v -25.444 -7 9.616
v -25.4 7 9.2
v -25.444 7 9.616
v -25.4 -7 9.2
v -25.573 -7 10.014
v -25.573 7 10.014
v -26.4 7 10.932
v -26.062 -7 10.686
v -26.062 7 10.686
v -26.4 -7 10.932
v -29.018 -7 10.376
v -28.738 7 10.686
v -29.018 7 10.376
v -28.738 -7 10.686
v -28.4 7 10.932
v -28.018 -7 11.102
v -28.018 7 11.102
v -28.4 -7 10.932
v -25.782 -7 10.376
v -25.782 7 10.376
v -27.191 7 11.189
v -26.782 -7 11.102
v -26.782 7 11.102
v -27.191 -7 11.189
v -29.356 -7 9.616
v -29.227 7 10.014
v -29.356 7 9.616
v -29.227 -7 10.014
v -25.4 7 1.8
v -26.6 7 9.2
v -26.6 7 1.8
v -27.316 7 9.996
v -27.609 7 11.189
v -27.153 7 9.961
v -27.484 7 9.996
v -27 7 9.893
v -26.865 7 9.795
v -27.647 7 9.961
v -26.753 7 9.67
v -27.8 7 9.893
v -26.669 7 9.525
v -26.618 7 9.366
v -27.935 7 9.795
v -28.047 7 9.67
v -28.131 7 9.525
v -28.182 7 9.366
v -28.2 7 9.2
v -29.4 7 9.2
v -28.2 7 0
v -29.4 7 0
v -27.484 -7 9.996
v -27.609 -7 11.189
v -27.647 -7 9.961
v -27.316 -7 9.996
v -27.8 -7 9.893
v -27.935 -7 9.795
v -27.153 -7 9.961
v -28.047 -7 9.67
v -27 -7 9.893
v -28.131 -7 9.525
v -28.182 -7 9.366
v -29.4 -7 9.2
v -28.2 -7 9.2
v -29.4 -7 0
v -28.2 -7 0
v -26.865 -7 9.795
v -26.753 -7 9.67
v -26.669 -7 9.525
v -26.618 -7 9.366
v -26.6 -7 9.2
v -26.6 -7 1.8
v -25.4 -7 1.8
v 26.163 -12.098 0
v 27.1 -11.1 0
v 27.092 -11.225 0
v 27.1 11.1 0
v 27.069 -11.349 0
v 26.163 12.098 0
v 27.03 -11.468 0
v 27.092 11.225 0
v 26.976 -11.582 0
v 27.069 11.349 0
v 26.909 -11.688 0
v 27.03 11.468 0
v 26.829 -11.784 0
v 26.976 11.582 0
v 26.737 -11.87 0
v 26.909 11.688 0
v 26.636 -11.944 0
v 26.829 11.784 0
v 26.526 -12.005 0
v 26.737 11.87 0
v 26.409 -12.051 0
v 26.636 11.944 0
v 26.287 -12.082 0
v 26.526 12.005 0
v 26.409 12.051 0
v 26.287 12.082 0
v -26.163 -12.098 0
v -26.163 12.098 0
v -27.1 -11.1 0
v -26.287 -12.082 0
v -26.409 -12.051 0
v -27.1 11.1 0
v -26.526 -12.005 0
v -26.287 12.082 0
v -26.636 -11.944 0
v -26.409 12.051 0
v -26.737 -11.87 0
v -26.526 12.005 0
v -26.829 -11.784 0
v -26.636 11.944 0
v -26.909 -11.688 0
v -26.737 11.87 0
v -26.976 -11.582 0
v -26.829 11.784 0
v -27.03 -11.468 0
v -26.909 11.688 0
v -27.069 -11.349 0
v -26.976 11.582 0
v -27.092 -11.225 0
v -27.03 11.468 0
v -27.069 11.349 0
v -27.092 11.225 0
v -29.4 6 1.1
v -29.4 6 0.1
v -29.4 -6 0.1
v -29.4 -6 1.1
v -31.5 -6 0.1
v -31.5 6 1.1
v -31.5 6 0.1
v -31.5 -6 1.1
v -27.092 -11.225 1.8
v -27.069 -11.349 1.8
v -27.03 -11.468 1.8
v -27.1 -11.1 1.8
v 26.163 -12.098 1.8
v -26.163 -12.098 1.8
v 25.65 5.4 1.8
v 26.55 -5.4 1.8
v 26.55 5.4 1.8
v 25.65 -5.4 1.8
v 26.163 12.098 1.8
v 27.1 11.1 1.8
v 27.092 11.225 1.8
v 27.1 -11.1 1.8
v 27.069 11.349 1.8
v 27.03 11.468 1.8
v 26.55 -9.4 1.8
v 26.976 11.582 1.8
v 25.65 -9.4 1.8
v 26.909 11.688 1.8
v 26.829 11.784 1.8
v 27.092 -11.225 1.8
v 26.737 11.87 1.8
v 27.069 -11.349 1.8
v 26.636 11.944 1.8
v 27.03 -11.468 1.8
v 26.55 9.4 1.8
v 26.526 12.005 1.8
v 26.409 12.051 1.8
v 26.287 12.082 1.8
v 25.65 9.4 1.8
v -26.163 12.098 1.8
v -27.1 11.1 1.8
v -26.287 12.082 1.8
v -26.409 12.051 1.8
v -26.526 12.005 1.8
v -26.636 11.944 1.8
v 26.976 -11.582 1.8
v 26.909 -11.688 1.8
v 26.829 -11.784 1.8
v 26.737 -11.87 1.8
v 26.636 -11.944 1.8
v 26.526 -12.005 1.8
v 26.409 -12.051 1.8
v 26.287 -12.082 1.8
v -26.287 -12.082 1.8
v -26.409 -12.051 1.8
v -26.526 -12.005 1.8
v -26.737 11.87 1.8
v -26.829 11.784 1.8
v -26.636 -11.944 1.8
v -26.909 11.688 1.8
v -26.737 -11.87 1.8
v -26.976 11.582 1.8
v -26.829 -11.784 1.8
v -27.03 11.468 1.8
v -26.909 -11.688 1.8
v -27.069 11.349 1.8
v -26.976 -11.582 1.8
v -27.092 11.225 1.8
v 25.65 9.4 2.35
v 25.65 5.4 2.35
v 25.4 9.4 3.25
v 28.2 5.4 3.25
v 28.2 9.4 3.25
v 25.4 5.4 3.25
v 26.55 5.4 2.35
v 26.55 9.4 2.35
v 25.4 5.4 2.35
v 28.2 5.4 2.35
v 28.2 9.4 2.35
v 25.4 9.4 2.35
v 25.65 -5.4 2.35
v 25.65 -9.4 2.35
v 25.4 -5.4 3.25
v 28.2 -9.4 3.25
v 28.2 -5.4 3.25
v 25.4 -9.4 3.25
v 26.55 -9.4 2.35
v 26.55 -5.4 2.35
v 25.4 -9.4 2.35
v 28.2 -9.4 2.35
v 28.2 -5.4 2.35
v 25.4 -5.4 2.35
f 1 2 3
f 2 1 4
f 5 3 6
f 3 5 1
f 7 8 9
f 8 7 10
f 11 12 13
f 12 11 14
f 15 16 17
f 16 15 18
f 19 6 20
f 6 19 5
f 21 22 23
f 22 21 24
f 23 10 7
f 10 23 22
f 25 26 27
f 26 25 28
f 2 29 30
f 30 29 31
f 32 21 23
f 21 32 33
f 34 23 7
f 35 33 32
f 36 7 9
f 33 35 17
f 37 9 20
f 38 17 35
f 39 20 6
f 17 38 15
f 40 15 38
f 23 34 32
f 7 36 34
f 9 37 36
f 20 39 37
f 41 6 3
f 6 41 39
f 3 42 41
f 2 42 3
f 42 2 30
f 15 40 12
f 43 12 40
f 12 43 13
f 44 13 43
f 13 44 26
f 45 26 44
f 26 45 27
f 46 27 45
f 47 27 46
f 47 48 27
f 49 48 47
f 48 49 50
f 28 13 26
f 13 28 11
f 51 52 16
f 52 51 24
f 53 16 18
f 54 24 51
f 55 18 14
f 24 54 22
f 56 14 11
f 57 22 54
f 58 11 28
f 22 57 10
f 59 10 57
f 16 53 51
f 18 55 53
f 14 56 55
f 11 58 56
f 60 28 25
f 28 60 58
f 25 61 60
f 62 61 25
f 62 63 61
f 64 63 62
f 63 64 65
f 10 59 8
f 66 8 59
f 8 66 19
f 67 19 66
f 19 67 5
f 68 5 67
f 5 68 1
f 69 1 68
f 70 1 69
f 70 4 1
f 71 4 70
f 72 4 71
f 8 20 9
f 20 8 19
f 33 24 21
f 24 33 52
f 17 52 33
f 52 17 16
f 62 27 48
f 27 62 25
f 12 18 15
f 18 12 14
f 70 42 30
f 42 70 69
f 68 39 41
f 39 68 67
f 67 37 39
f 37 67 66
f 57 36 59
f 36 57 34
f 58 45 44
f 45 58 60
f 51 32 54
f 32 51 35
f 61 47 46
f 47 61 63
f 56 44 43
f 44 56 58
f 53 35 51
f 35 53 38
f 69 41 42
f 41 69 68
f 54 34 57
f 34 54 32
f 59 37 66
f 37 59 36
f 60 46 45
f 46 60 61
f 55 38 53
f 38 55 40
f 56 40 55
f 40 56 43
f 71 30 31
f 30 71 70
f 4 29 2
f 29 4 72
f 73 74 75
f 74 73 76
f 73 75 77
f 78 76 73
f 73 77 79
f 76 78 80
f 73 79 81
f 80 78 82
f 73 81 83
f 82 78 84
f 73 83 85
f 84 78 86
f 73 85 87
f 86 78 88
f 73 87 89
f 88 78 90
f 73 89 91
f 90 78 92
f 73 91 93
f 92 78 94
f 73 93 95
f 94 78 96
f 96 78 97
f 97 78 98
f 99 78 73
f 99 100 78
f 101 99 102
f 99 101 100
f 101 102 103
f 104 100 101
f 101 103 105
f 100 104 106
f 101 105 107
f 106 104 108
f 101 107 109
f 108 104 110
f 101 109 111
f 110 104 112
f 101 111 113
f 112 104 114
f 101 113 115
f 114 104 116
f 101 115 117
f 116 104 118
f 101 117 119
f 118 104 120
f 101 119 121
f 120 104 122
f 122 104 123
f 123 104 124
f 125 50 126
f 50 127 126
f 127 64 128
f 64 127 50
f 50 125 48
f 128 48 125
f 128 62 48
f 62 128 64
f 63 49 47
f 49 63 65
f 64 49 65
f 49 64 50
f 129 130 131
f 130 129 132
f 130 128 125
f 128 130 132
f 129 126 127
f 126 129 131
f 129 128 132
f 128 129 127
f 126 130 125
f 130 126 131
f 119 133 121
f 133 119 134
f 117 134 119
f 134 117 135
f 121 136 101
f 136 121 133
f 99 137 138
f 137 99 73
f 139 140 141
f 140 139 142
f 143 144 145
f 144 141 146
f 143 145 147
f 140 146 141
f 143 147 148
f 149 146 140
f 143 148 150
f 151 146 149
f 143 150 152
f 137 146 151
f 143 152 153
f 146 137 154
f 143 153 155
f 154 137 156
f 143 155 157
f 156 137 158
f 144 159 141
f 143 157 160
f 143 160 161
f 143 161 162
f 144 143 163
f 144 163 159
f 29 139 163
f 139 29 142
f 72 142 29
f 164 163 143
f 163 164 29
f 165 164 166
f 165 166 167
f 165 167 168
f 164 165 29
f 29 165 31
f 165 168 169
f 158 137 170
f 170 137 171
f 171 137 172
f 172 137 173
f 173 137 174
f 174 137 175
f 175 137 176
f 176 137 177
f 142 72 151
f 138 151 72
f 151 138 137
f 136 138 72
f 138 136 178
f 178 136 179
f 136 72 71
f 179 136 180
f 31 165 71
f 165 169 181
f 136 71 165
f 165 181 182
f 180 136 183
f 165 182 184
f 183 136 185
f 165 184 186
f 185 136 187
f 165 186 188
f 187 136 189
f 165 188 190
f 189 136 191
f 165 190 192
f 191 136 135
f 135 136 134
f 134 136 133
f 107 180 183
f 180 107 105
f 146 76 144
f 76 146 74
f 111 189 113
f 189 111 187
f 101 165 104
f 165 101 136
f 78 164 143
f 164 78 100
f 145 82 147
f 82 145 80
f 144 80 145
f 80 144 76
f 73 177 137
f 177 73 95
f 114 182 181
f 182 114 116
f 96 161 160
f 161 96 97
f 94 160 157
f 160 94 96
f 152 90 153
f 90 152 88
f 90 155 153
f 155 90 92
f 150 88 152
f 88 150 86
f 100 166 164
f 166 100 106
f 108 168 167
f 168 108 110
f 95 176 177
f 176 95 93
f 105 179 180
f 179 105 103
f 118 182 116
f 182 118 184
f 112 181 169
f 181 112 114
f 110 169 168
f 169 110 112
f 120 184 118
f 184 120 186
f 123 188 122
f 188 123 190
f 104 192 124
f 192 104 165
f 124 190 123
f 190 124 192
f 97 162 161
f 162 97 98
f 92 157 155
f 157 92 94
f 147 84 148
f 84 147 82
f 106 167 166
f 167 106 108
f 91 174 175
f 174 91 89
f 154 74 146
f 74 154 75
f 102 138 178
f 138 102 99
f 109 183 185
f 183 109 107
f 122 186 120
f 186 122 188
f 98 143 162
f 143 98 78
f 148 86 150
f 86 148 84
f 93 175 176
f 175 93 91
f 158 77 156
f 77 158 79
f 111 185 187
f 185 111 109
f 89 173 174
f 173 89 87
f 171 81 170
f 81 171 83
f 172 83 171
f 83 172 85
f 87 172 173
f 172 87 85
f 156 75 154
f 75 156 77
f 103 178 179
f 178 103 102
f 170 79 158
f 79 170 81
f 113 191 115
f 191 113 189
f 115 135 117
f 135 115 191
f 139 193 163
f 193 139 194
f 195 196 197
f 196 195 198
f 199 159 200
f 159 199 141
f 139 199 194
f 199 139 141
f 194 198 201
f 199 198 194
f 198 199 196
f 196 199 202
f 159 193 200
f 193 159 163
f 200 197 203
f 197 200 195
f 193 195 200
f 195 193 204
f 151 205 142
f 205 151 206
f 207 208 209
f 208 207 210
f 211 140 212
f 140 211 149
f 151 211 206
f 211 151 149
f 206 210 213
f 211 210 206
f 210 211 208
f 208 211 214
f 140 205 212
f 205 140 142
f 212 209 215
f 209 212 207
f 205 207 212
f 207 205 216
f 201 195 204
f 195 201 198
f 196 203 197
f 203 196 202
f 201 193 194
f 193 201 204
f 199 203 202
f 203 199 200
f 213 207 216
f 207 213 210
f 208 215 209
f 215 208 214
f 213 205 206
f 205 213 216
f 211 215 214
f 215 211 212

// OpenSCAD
module roundedRect(size, radius) {
	x = size[0];
	y = size[1];
	z = size[2];

	linear_extrude(height=z)
	hull() {
		// place 4 circles in the corners, with the given radius
		translate([(-x/2)+(radius/2), (-y/2)+(radius/2), 0])
		circle(r=radius);
	
		translate([(x/2)-(radius/2), (-y/2)+(radius/2), 0])
		circle(r=radius);
	
		translate([(-x/2)+(radius/2), (y/2)-(radius/2), 0])
		circle(r=radius);
	
		translate([(x/2)-(radius/2), (y/2)-(radius/2), 0])
		circle(r=radius);
	}
}

module rav499_bat_cov() {

    //dimensions
    L1 = 53.2;//length of main body
    L2 = 23.2;//width of main body (flat section only)
    L4 = 14.8;//center-to-center of end clips
    L5 = 2.8;//height of end clips
    L6 = 2.8;//Length of end clips
    L7 = 4;//width of end clips
    L8 = 14;//width of retension clip
    L9 = 11.2;//height of retension clip
    T1 = 1.8;//thickness of main body
    T2 = 0.9;//thickness of end clips
    T3 = 1.2; //thickness of retension clip
    D1 = 4+T3/2-0.6; //outer diamater of retension clip
    D2 = D1 - 2*T3;//inner diamater of retension clip

    union() {
        //the main body
        roundedRect([L1, L2, T1], 1, $fn=50);

        // the end clips
        translate([(L1/2)-.5,L4/2,(L5+T2)/2])
        cube([T2, L7, L5], center = true);
        translate([(L1/2)-.5,-L4/2,(L5+T2)/2])
        cube([T2, L7, L5], center = true);
        // the end clip extensions
        translate([L1/2+.2,L4/2,L5])
        cube([L6, L7, T2], center = true);
        translate([L1/2+.2,-L4/2,L5])
        cube([L6, L7, T2], center = true);
        
        //opener
        translate([-((L1/2)+(D2/2)),0,0]) {
            difference () { //difference
                //The outer cylinder (OD)
                translate([0,0,L9-(D1/2)])
                rotate([90,0,0])
                scale([1/100,1/100,1/100])
                cylinder(100*L8, 100*(D1/2), 100*(D1/2), center = true);

                //The inner cylinder (ID)
                translate([0,0,L9-(D1/2)])
                rotate([90,0,0])
                scale([1/100,1/100,1/100])
                cylinder(100*L8, 100*(D2/2), 100*(D2/2), center = true);

                translate([0,0,L9-(D1/2)-((D1/2)/2)])
                cube([D1, L8+.1, D1/2], center = true);
            } //difference

            // Vertical parts
            translate([((D1/2)-(T3/2)),0,(L9/2)-D1/4])
            cube([T3, L8, L9-(D1/2)], center = true);
            translate([-((D1/2)-(T3/2)),0,(L9/2)-D1/4])
            cube([T3, L8, L9-(D1/2)], center = true);	

            // Nail clip
            translate([-((D1/2)-(T3/2))-T3,0,T1/3])
            cube([3, L8-2, 1], center = true);	

        }//Translate
    }//union
}

rav499_bat_cov();

module cylinder_ep(p1, p2) {
	vector = [p2[0] - p1[0],p2[1] - p1[1],p2[2] - p1[2]];
	distance = sqrt(pow(vector[0], 2) +	pow(vector[1], 2) +	pow(vector[2], 2));
	echo(distance);
	translate(vector/2 + p1)
	//rotation of XoY plane by the Z axis with the angle of the [p1 p2] line projection with the X axis on the XoY plane
	rotate([0, 0, atan2(vector[1], vector[0])]) //rotation
	//rotation of ZoX plane by the y axis with the angle given by the z coordinate and the sqrt(x^2 + y^2)) point in the XoY plane
	rotate([0, atan2(sqrt(pow(vector[0], 2)+pow(vector[1], 2)),vector[2]), 0])
	cylinder(h = distance, r = 0.1, center = true);
}
